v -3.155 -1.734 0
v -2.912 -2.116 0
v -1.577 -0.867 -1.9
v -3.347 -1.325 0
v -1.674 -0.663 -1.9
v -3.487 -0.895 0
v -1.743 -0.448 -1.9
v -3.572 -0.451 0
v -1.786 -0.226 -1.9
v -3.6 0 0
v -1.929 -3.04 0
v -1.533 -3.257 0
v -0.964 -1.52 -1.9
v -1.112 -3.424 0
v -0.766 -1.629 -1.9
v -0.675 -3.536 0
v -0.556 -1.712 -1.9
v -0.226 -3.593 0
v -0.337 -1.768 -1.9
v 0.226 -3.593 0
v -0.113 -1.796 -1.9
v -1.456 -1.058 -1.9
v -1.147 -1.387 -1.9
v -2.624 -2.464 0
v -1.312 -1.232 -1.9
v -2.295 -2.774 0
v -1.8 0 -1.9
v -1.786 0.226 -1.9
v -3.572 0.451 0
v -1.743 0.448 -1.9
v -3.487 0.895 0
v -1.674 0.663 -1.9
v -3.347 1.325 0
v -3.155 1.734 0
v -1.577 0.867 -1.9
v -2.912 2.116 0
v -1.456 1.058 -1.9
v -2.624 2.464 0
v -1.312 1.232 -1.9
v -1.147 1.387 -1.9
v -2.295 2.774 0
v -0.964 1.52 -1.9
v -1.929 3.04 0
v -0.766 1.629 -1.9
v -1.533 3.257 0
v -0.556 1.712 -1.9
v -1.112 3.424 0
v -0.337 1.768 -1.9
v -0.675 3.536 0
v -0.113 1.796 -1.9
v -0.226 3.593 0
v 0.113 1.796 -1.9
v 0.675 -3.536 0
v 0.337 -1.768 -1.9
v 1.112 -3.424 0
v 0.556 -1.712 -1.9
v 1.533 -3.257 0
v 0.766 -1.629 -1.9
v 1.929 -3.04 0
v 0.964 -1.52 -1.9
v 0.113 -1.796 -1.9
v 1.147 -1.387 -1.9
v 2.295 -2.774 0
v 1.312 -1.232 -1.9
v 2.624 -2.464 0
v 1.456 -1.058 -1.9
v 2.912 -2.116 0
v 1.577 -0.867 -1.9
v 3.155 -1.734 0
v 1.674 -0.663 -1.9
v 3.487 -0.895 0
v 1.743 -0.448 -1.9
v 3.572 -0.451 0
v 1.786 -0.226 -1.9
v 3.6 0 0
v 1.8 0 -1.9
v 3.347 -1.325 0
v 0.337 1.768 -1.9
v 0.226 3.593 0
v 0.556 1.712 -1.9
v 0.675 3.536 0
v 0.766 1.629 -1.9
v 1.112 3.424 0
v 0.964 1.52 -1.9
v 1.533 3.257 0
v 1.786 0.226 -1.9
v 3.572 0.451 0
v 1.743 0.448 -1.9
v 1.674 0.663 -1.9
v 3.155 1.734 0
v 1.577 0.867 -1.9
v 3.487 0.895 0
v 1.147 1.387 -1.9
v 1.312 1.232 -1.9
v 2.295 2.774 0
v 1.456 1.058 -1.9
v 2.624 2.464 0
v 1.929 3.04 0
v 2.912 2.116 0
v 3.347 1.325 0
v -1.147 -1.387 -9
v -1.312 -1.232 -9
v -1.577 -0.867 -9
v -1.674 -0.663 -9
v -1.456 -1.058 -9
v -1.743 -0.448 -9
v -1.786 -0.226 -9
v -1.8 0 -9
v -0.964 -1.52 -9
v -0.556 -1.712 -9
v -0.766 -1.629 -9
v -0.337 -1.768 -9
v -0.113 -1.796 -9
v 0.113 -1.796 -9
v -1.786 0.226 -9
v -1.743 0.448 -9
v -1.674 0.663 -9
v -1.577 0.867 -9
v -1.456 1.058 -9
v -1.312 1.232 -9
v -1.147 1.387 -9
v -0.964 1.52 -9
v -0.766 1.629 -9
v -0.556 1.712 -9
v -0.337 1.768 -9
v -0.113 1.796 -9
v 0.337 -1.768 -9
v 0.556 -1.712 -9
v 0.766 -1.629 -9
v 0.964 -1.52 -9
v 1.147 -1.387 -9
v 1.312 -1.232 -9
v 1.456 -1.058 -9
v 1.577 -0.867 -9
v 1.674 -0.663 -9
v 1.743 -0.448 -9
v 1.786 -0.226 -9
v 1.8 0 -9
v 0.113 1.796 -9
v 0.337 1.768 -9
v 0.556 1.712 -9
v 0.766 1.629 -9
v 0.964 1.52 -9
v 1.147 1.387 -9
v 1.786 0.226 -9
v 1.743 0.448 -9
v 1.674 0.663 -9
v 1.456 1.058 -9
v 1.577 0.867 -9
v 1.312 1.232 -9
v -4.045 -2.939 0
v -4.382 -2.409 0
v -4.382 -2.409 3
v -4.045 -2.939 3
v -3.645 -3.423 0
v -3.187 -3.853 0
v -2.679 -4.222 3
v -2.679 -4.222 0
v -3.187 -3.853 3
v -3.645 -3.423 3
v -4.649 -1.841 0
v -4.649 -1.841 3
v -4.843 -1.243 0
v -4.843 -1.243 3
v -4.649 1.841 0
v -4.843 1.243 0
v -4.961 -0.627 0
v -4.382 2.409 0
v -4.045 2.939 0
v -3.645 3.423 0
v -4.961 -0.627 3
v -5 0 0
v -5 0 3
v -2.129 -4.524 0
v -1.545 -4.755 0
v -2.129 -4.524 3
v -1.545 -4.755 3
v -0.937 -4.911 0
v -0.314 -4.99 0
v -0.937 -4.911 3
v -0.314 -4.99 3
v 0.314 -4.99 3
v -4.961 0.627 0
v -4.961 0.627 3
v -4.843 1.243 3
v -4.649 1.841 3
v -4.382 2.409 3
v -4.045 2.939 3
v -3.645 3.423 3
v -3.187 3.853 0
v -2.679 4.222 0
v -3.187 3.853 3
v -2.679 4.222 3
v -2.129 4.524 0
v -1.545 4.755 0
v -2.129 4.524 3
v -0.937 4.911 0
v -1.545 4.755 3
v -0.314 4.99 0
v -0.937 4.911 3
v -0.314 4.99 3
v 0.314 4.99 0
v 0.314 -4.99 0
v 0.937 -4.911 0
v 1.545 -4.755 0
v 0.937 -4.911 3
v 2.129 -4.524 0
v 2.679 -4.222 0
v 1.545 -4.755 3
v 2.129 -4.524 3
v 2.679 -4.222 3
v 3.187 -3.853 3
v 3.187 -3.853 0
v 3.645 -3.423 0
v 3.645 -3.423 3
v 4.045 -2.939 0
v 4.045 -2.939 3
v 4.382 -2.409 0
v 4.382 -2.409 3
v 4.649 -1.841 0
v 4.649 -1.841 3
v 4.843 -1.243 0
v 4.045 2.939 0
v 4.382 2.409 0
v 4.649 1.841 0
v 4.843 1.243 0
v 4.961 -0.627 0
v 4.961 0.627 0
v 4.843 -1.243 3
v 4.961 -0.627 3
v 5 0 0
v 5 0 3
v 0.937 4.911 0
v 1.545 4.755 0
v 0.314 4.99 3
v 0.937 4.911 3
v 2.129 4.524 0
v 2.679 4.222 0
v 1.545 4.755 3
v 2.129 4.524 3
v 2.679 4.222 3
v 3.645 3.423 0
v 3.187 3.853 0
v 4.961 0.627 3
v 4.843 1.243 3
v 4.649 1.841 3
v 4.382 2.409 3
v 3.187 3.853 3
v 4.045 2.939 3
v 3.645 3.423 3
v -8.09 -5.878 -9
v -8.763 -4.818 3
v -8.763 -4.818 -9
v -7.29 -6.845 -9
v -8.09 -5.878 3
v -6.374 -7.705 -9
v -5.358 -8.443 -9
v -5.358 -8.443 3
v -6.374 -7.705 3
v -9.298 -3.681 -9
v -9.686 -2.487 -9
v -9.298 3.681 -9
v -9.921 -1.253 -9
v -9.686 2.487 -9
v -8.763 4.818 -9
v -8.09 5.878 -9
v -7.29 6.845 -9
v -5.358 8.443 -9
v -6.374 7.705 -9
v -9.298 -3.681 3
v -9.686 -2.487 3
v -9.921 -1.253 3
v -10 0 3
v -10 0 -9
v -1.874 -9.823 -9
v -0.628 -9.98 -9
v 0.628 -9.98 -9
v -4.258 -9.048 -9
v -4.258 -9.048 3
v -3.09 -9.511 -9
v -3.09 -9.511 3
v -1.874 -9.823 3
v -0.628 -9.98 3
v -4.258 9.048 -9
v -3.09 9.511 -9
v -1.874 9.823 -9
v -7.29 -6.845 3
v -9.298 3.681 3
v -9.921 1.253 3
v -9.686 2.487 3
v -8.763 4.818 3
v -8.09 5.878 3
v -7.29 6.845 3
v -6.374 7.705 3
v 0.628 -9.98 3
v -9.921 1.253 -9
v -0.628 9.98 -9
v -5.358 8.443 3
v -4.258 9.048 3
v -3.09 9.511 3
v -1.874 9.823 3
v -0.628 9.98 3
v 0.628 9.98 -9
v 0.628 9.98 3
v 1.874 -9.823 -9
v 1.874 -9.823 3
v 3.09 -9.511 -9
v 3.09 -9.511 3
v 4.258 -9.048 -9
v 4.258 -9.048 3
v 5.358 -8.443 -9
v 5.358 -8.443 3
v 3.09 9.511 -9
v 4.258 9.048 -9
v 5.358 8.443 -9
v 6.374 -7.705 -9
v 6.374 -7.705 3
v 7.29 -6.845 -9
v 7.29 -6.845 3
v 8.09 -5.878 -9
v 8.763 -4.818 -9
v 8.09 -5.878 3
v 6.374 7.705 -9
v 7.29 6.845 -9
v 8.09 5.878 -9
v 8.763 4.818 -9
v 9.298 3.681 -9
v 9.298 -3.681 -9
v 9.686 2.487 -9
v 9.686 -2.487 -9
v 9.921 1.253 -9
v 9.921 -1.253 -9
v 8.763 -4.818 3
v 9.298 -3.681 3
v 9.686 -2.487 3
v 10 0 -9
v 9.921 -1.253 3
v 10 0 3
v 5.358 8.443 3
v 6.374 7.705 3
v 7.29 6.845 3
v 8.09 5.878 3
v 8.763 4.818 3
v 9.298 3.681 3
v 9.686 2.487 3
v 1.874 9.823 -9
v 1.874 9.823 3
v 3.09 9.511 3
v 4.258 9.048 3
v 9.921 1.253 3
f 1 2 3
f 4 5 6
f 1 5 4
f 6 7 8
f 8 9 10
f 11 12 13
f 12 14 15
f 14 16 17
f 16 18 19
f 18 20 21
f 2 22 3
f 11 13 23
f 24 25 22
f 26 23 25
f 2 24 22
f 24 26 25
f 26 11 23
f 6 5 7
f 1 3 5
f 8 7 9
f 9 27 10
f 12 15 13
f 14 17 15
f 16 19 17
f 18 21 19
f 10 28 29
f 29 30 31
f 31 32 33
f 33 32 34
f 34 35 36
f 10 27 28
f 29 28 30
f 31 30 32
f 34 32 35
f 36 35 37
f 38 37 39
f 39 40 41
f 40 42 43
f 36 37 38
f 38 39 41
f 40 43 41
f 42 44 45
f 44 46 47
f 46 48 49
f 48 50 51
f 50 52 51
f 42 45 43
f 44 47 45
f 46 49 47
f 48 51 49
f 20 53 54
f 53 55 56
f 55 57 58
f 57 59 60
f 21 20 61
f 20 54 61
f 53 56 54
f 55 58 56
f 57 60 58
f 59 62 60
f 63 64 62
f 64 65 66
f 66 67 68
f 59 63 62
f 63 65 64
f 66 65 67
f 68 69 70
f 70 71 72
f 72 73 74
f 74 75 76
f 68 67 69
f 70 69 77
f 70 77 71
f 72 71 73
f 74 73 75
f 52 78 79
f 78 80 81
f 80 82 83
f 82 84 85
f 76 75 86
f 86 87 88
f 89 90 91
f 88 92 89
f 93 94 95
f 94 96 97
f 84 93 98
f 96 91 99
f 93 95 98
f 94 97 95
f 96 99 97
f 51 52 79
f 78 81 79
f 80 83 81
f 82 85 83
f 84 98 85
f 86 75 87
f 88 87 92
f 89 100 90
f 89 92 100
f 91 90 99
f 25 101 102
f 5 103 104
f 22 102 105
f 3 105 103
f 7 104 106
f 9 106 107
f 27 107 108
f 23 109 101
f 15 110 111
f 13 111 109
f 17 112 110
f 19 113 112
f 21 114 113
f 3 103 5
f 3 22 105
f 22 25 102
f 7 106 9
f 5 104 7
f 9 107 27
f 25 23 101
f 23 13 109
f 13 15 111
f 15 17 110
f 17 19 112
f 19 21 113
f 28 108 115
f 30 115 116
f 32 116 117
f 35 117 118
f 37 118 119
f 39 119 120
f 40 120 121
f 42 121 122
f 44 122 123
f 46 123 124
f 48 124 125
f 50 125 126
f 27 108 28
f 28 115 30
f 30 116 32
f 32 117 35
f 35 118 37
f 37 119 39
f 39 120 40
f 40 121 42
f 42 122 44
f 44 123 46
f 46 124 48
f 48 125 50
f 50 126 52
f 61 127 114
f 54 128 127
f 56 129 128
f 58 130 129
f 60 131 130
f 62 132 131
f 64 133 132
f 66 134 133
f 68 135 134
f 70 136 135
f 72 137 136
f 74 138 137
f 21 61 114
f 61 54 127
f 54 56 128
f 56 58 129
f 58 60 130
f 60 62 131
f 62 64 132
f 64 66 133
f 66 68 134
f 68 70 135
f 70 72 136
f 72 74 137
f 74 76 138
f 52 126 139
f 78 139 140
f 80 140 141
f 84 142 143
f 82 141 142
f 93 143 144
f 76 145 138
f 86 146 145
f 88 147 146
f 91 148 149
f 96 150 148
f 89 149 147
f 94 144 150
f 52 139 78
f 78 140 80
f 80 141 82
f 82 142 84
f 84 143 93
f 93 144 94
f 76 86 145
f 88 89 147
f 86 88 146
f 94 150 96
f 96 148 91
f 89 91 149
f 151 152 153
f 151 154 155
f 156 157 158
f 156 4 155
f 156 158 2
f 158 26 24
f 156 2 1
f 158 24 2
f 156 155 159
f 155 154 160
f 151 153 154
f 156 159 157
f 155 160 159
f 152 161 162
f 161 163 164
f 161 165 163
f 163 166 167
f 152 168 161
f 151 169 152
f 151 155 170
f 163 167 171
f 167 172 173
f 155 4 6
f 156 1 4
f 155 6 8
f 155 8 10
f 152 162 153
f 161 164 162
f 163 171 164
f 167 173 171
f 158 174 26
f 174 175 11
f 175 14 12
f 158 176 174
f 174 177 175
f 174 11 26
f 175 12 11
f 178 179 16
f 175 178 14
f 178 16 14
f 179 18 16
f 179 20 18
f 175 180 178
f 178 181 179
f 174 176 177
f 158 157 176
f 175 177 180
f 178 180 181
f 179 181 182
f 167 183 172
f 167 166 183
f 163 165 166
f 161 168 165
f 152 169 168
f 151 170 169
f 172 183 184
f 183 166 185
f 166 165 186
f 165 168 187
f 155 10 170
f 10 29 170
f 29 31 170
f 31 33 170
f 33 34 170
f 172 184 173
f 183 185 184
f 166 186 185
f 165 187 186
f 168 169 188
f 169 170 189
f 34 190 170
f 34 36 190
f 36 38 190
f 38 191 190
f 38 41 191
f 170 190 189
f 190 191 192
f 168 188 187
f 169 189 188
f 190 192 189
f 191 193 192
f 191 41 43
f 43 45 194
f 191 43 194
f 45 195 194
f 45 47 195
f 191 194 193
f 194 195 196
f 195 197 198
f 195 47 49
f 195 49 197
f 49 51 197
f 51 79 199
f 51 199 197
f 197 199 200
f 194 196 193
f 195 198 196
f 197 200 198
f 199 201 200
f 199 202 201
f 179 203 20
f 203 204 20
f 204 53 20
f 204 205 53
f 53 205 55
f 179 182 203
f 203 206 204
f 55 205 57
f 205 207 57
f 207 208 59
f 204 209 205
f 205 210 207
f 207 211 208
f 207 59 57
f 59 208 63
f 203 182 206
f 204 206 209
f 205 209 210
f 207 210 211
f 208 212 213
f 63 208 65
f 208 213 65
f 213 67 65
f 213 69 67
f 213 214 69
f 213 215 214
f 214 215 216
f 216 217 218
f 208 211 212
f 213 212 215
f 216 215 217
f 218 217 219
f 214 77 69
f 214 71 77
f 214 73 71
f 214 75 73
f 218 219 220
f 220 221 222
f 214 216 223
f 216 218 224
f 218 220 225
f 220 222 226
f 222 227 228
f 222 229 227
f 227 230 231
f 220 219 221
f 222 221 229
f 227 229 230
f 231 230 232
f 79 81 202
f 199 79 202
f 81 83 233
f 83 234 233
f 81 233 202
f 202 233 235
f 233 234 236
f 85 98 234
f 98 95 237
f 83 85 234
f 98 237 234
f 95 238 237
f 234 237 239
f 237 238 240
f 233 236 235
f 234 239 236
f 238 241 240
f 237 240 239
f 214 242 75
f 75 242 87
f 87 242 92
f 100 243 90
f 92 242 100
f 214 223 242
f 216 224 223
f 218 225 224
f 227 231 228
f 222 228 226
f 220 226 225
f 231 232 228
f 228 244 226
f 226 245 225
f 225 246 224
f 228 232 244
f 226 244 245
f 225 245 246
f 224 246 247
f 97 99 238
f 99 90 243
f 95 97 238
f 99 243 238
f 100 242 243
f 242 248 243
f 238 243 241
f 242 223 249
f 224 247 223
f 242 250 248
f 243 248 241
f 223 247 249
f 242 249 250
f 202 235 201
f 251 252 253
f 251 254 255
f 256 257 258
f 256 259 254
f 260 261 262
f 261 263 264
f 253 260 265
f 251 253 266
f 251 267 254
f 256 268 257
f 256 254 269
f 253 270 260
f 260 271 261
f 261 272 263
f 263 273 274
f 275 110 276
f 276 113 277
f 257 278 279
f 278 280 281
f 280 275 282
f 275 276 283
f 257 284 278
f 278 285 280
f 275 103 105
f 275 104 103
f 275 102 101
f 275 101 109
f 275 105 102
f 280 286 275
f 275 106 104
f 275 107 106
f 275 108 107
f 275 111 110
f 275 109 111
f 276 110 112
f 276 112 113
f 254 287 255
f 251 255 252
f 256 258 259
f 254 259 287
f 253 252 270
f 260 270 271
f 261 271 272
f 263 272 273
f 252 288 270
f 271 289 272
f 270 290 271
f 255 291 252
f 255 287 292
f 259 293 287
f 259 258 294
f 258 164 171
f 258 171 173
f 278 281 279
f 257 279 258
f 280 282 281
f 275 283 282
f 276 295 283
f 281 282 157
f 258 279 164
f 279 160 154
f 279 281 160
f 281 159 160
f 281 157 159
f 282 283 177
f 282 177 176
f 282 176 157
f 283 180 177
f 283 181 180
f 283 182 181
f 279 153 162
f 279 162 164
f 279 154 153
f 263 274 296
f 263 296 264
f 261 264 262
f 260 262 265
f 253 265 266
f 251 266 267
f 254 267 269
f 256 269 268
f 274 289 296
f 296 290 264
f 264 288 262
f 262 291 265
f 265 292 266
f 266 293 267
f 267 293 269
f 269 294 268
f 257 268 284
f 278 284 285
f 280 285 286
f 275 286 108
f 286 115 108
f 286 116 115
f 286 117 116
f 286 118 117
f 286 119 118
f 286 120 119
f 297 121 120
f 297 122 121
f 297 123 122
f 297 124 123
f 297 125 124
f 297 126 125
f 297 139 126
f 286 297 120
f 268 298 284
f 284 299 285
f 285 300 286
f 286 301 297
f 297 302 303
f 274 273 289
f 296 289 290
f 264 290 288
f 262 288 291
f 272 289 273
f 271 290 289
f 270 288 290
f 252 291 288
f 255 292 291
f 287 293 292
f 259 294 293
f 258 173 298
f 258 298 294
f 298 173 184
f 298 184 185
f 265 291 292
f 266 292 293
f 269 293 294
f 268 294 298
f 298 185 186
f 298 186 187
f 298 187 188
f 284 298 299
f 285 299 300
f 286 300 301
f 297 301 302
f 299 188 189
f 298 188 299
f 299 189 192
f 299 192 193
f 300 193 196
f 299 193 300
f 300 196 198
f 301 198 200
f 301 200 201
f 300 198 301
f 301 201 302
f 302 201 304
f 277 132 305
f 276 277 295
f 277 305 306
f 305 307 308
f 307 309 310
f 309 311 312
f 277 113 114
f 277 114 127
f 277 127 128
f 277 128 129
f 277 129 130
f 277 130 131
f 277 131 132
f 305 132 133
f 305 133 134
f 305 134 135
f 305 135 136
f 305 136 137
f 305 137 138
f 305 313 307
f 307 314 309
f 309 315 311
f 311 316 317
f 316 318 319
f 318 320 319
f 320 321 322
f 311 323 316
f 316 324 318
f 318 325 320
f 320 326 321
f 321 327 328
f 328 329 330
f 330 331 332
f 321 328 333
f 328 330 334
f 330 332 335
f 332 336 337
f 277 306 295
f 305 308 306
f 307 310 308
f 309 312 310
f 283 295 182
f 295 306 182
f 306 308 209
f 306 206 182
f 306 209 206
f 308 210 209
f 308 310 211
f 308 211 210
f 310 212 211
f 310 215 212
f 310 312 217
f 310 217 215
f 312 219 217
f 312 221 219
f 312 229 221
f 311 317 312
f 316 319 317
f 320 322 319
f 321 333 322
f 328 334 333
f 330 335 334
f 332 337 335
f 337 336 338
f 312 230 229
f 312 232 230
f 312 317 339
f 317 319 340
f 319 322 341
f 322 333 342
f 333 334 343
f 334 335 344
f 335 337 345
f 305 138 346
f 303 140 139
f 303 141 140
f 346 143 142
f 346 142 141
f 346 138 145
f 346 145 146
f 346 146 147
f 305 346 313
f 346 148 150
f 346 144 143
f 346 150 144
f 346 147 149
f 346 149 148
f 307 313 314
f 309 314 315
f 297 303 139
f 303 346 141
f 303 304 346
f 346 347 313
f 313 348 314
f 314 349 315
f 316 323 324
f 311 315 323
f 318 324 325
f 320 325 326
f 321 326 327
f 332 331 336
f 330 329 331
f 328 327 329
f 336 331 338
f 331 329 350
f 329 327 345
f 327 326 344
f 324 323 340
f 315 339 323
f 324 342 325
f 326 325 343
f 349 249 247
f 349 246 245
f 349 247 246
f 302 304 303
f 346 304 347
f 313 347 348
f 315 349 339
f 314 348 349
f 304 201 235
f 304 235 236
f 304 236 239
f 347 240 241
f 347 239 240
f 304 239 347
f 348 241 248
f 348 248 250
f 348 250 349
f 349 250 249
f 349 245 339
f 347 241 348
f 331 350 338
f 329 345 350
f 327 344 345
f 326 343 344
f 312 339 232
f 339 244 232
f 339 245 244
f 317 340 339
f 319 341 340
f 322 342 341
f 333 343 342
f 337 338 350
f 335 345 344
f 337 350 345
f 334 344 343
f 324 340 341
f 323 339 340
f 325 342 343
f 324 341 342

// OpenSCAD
$fn = 50;

difference() {
	union() {
		translate(v = [0, 0, -9.0]) {
			cylinder(h = 12, r = 10.0);
		}
	}
	union() {
		translate(v = [0, 0, 0]) {
			rotate(a = [0, 0, 0]) {
				difference() {
					union() {
						translate(v = [0, 0, -12.0]) {
							cylinder(h = 12, r = 1.5);
						}
						translate(v = [0, 0, -1.9]) {
							cylinder(h = 1.9, r1 = 1.8, r2 = 3.6);
						}
						translate(v = [0, 0, -12.0]) {
							cylinder(h = 12, r = 1.8);
						}
						translate(v = [0, 0, -12.0]) {
							cylinder(h = 12, r = 1.5);
						}
					}
					union();
				}
			}
		}
		#cylinder(h = 3, r = 5.0);
	}
}
